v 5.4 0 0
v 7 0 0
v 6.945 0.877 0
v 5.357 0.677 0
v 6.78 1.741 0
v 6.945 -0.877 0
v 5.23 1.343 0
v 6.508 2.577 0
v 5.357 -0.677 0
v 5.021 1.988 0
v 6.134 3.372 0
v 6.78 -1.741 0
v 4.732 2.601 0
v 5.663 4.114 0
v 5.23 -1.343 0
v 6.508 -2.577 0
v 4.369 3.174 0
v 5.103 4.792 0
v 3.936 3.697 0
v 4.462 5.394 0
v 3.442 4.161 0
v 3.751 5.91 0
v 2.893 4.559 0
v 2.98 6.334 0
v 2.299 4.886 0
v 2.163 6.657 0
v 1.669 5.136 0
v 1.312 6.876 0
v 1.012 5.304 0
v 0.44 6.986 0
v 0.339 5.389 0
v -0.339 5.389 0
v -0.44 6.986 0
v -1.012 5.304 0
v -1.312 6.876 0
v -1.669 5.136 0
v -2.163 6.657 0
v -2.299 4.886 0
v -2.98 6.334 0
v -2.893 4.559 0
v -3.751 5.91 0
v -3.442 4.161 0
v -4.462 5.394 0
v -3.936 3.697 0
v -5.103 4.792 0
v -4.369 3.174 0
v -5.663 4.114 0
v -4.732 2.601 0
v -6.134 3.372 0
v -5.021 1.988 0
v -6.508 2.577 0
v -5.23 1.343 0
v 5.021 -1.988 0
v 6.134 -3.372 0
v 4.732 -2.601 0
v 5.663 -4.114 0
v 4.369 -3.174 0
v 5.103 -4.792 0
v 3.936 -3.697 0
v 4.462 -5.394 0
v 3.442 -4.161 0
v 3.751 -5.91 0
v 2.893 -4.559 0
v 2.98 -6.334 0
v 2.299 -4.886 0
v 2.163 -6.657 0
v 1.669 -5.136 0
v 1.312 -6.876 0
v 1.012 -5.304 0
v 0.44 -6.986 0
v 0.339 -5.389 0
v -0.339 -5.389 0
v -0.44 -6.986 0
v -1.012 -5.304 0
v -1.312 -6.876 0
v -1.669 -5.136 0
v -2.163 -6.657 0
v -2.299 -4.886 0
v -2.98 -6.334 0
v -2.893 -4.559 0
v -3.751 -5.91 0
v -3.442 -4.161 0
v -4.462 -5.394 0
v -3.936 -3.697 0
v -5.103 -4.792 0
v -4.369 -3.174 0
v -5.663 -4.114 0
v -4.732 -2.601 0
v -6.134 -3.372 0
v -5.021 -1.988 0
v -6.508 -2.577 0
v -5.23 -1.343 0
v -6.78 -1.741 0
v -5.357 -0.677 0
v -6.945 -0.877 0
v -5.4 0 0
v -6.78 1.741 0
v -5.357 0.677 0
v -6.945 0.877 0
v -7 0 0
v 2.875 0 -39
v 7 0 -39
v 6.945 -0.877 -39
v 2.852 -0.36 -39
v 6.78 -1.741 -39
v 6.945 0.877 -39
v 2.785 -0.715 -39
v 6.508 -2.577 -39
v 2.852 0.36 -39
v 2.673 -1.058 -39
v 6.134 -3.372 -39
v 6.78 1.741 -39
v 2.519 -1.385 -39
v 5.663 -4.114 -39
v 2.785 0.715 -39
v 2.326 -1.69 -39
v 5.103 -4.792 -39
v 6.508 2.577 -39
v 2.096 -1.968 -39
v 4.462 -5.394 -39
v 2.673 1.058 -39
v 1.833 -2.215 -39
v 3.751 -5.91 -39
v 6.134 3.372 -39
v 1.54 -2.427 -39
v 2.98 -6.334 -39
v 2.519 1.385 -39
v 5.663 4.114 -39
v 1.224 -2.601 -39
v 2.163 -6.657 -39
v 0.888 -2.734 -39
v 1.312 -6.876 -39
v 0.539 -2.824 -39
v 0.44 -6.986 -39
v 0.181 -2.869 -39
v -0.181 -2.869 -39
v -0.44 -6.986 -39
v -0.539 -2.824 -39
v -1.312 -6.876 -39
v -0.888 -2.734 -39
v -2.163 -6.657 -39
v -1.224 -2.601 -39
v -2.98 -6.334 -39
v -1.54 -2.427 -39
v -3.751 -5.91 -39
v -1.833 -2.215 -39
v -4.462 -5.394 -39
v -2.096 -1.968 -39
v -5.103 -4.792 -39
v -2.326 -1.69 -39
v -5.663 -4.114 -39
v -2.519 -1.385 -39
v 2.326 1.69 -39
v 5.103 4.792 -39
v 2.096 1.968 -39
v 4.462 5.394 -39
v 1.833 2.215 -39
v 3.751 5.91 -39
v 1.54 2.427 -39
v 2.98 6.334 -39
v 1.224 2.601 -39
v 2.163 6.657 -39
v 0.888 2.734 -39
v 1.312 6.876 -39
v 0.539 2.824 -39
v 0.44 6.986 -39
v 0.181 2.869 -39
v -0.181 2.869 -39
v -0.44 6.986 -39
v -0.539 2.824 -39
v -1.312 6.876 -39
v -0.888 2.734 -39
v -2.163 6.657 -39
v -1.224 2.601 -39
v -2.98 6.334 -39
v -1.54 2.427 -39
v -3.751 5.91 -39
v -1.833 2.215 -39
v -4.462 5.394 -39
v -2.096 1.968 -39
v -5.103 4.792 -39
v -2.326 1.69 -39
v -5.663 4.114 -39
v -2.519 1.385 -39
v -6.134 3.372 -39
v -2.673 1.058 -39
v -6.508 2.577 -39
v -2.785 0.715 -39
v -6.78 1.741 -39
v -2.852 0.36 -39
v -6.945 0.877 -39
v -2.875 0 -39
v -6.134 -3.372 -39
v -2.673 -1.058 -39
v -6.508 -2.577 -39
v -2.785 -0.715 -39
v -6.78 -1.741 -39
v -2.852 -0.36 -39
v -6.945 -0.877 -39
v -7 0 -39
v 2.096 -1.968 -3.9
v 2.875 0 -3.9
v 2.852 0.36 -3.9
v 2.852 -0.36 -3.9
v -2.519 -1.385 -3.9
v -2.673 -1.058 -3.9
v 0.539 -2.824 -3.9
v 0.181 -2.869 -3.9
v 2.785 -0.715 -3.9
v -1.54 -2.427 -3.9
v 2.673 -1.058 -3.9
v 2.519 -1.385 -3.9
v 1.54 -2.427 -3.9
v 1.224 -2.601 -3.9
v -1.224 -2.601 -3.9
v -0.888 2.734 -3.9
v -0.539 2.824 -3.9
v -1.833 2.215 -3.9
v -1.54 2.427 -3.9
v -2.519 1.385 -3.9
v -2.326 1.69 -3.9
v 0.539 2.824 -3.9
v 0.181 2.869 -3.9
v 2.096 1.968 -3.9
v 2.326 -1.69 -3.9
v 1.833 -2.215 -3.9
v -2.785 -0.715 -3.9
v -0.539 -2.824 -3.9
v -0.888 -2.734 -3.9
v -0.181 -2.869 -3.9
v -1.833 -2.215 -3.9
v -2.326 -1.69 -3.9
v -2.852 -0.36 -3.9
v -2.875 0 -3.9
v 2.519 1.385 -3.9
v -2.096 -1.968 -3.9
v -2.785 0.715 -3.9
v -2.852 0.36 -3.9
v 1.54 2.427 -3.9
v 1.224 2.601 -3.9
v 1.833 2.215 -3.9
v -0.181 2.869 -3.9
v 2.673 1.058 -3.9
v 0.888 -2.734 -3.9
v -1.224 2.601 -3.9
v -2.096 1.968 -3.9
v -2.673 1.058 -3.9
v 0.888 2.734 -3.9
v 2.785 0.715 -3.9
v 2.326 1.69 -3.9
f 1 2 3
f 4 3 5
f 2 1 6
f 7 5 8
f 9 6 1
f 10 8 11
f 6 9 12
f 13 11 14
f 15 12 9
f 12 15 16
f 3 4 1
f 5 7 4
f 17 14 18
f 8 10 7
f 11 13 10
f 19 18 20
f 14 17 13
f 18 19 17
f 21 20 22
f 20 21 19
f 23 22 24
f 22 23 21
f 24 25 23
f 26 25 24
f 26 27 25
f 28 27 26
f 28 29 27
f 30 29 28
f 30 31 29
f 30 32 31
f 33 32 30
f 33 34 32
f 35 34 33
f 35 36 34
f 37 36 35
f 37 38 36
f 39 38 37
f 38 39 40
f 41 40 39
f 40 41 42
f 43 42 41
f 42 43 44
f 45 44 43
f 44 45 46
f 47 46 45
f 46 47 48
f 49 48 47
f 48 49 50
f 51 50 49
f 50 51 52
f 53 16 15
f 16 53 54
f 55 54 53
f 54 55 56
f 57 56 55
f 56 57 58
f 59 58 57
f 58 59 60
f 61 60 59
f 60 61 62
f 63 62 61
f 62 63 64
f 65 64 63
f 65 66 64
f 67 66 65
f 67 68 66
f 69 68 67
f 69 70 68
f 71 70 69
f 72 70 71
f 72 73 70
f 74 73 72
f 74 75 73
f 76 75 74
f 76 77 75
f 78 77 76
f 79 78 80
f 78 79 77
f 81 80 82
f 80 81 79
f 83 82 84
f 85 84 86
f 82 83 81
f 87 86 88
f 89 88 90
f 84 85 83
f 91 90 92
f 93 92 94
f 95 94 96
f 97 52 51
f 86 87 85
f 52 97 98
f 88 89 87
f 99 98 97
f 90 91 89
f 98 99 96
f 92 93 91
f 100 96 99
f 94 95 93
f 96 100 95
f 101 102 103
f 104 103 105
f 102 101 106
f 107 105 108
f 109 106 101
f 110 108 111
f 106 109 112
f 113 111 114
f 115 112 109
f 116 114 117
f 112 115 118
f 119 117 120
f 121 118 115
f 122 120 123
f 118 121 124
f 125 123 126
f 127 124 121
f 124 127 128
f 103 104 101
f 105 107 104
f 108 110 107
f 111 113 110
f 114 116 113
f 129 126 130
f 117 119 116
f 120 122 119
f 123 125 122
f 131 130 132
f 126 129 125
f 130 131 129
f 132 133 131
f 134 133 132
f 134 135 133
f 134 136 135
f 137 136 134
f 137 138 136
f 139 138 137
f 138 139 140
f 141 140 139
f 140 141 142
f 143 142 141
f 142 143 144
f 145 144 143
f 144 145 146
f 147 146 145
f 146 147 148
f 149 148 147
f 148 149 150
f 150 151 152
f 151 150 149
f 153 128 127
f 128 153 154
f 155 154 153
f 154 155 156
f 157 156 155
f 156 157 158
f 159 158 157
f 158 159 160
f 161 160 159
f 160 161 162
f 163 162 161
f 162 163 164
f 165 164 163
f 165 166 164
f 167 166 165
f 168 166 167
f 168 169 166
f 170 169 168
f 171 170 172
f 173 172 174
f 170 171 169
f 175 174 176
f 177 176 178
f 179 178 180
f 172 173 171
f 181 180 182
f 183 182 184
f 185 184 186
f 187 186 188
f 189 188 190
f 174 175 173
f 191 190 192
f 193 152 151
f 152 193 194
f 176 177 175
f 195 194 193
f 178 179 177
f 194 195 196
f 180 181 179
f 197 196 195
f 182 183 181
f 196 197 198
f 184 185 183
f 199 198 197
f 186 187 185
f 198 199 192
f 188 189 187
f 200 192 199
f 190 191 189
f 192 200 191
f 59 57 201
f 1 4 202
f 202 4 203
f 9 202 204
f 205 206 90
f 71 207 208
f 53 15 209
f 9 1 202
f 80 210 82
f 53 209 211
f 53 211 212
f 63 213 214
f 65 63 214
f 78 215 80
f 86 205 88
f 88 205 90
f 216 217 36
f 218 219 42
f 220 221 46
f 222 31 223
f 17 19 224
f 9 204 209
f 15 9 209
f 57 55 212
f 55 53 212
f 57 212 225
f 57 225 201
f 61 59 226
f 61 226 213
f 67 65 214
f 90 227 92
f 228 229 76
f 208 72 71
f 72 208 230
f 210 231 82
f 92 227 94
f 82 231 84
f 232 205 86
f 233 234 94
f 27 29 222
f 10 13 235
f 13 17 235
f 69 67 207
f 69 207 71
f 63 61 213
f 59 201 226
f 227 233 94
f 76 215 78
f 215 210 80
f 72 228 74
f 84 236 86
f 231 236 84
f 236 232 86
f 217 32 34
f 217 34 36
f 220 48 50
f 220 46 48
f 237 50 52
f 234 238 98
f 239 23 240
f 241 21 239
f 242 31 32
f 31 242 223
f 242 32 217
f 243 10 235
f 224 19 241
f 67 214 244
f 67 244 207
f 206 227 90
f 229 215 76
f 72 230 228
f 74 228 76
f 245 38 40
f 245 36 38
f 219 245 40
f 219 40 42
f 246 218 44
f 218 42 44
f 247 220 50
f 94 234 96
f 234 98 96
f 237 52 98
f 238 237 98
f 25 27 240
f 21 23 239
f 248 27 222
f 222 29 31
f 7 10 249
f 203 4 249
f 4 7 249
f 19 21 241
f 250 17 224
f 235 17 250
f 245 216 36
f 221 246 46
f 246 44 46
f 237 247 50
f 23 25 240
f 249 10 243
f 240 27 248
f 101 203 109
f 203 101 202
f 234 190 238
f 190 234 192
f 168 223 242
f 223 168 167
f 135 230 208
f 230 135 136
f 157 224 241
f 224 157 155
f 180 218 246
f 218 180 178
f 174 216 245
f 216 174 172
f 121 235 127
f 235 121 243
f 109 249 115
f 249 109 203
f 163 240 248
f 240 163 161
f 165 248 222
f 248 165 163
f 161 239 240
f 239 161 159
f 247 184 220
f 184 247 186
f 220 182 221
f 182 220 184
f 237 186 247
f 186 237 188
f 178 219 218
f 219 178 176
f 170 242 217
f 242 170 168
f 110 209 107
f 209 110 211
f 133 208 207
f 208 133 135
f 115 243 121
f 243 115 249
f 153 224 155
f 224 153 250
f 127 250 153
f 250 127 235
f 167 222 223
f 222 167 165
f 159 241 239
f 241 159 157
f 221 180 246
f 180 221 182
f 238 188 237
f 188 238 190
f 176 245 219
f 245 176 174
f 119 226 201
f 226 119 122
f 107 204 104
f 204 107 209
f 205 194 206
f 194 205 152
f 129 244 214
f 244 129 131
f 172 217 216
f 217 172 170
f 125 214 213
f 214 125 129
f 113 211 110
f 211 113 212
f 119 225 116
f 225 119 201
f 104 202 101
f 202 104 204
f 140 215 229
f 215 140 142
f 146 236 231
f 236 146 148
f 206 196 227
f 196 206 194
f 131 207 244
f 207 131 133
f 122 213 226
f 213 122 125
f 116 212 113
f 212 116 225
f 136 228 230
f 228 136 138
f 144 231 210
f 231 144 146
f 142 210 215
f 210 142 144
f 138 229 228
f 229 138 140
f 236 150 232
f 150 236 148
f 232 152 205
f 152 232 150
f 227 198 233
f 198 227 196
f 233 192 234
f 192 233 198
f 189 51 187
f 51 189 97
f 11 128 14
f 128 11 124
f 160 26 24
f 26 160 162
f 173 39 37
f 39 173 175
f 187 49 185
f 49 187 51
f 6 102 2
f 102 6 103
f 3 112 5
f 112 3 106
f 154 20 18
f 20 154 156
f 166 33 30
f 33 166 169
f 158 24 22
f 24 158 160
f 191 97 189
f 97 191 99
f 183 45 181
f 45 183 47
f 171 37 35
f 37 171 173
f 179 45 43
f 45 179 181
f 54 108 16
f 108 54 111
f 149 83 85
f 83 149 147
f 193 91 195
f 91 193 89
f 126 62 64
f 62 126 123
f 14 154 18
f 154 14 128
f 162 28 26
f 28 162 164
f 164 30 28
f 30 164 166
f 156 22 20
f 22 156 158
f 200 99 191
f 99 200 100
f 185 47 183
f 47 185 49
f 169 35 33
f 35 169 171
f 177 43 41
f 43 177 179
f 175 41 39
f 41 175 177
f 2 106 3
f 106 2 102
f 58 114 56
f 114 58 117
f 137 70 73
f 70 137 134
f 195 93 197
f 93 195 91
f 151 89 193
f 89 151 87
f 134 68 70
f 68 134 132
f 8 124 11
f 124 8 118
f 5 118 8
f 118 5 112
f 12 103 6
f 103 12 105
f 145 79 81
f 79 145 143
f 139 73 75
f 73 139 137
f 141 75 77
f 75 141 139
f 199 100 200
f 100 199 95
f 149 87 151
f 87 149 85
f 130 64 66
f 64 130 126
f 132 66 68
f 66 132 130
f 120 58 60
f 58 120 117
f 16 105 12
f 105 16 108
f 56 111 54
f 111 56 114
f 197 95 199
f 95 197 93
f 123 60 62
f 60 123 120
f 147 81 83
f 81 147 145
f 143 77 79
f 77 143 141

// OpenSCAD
$fn = 50;


difference() {
	union() {
		translate(v = [0, 0, -39.0000000000]) {
			cylinder(h = 39, r = 7.0000000000);
		}
		cylinder(h = 0, r = 17.0000000000);
	}
	union() {
		translate(v = [0, 0, 0]) {
			rotate(a = [0, 0, 0]) {
				difference() {
					union() {
						#translate(v = [0, 0, -39.0000000000]) {
							cylinder(h = 39, r = 2.6000000000);
						}
						#translate(v = [0, 0, -3.9000000000]) {
							cylinder(h = 3.9000000000, r = 7.0000000000, r1 = 2.8750000000, r2 = 5.4000000000);
						}
						#translate(v = [0, 0, -39.0000000000]) {
							cylinder(h = 39, r = 2.8750000000);
						}
						#translate(v = [0, 0, -39.0000000000]) {
							cylinder(h = 39, r = 2.6000000000);
						}
					}
					union();
				}
			}
		}
	}
}
